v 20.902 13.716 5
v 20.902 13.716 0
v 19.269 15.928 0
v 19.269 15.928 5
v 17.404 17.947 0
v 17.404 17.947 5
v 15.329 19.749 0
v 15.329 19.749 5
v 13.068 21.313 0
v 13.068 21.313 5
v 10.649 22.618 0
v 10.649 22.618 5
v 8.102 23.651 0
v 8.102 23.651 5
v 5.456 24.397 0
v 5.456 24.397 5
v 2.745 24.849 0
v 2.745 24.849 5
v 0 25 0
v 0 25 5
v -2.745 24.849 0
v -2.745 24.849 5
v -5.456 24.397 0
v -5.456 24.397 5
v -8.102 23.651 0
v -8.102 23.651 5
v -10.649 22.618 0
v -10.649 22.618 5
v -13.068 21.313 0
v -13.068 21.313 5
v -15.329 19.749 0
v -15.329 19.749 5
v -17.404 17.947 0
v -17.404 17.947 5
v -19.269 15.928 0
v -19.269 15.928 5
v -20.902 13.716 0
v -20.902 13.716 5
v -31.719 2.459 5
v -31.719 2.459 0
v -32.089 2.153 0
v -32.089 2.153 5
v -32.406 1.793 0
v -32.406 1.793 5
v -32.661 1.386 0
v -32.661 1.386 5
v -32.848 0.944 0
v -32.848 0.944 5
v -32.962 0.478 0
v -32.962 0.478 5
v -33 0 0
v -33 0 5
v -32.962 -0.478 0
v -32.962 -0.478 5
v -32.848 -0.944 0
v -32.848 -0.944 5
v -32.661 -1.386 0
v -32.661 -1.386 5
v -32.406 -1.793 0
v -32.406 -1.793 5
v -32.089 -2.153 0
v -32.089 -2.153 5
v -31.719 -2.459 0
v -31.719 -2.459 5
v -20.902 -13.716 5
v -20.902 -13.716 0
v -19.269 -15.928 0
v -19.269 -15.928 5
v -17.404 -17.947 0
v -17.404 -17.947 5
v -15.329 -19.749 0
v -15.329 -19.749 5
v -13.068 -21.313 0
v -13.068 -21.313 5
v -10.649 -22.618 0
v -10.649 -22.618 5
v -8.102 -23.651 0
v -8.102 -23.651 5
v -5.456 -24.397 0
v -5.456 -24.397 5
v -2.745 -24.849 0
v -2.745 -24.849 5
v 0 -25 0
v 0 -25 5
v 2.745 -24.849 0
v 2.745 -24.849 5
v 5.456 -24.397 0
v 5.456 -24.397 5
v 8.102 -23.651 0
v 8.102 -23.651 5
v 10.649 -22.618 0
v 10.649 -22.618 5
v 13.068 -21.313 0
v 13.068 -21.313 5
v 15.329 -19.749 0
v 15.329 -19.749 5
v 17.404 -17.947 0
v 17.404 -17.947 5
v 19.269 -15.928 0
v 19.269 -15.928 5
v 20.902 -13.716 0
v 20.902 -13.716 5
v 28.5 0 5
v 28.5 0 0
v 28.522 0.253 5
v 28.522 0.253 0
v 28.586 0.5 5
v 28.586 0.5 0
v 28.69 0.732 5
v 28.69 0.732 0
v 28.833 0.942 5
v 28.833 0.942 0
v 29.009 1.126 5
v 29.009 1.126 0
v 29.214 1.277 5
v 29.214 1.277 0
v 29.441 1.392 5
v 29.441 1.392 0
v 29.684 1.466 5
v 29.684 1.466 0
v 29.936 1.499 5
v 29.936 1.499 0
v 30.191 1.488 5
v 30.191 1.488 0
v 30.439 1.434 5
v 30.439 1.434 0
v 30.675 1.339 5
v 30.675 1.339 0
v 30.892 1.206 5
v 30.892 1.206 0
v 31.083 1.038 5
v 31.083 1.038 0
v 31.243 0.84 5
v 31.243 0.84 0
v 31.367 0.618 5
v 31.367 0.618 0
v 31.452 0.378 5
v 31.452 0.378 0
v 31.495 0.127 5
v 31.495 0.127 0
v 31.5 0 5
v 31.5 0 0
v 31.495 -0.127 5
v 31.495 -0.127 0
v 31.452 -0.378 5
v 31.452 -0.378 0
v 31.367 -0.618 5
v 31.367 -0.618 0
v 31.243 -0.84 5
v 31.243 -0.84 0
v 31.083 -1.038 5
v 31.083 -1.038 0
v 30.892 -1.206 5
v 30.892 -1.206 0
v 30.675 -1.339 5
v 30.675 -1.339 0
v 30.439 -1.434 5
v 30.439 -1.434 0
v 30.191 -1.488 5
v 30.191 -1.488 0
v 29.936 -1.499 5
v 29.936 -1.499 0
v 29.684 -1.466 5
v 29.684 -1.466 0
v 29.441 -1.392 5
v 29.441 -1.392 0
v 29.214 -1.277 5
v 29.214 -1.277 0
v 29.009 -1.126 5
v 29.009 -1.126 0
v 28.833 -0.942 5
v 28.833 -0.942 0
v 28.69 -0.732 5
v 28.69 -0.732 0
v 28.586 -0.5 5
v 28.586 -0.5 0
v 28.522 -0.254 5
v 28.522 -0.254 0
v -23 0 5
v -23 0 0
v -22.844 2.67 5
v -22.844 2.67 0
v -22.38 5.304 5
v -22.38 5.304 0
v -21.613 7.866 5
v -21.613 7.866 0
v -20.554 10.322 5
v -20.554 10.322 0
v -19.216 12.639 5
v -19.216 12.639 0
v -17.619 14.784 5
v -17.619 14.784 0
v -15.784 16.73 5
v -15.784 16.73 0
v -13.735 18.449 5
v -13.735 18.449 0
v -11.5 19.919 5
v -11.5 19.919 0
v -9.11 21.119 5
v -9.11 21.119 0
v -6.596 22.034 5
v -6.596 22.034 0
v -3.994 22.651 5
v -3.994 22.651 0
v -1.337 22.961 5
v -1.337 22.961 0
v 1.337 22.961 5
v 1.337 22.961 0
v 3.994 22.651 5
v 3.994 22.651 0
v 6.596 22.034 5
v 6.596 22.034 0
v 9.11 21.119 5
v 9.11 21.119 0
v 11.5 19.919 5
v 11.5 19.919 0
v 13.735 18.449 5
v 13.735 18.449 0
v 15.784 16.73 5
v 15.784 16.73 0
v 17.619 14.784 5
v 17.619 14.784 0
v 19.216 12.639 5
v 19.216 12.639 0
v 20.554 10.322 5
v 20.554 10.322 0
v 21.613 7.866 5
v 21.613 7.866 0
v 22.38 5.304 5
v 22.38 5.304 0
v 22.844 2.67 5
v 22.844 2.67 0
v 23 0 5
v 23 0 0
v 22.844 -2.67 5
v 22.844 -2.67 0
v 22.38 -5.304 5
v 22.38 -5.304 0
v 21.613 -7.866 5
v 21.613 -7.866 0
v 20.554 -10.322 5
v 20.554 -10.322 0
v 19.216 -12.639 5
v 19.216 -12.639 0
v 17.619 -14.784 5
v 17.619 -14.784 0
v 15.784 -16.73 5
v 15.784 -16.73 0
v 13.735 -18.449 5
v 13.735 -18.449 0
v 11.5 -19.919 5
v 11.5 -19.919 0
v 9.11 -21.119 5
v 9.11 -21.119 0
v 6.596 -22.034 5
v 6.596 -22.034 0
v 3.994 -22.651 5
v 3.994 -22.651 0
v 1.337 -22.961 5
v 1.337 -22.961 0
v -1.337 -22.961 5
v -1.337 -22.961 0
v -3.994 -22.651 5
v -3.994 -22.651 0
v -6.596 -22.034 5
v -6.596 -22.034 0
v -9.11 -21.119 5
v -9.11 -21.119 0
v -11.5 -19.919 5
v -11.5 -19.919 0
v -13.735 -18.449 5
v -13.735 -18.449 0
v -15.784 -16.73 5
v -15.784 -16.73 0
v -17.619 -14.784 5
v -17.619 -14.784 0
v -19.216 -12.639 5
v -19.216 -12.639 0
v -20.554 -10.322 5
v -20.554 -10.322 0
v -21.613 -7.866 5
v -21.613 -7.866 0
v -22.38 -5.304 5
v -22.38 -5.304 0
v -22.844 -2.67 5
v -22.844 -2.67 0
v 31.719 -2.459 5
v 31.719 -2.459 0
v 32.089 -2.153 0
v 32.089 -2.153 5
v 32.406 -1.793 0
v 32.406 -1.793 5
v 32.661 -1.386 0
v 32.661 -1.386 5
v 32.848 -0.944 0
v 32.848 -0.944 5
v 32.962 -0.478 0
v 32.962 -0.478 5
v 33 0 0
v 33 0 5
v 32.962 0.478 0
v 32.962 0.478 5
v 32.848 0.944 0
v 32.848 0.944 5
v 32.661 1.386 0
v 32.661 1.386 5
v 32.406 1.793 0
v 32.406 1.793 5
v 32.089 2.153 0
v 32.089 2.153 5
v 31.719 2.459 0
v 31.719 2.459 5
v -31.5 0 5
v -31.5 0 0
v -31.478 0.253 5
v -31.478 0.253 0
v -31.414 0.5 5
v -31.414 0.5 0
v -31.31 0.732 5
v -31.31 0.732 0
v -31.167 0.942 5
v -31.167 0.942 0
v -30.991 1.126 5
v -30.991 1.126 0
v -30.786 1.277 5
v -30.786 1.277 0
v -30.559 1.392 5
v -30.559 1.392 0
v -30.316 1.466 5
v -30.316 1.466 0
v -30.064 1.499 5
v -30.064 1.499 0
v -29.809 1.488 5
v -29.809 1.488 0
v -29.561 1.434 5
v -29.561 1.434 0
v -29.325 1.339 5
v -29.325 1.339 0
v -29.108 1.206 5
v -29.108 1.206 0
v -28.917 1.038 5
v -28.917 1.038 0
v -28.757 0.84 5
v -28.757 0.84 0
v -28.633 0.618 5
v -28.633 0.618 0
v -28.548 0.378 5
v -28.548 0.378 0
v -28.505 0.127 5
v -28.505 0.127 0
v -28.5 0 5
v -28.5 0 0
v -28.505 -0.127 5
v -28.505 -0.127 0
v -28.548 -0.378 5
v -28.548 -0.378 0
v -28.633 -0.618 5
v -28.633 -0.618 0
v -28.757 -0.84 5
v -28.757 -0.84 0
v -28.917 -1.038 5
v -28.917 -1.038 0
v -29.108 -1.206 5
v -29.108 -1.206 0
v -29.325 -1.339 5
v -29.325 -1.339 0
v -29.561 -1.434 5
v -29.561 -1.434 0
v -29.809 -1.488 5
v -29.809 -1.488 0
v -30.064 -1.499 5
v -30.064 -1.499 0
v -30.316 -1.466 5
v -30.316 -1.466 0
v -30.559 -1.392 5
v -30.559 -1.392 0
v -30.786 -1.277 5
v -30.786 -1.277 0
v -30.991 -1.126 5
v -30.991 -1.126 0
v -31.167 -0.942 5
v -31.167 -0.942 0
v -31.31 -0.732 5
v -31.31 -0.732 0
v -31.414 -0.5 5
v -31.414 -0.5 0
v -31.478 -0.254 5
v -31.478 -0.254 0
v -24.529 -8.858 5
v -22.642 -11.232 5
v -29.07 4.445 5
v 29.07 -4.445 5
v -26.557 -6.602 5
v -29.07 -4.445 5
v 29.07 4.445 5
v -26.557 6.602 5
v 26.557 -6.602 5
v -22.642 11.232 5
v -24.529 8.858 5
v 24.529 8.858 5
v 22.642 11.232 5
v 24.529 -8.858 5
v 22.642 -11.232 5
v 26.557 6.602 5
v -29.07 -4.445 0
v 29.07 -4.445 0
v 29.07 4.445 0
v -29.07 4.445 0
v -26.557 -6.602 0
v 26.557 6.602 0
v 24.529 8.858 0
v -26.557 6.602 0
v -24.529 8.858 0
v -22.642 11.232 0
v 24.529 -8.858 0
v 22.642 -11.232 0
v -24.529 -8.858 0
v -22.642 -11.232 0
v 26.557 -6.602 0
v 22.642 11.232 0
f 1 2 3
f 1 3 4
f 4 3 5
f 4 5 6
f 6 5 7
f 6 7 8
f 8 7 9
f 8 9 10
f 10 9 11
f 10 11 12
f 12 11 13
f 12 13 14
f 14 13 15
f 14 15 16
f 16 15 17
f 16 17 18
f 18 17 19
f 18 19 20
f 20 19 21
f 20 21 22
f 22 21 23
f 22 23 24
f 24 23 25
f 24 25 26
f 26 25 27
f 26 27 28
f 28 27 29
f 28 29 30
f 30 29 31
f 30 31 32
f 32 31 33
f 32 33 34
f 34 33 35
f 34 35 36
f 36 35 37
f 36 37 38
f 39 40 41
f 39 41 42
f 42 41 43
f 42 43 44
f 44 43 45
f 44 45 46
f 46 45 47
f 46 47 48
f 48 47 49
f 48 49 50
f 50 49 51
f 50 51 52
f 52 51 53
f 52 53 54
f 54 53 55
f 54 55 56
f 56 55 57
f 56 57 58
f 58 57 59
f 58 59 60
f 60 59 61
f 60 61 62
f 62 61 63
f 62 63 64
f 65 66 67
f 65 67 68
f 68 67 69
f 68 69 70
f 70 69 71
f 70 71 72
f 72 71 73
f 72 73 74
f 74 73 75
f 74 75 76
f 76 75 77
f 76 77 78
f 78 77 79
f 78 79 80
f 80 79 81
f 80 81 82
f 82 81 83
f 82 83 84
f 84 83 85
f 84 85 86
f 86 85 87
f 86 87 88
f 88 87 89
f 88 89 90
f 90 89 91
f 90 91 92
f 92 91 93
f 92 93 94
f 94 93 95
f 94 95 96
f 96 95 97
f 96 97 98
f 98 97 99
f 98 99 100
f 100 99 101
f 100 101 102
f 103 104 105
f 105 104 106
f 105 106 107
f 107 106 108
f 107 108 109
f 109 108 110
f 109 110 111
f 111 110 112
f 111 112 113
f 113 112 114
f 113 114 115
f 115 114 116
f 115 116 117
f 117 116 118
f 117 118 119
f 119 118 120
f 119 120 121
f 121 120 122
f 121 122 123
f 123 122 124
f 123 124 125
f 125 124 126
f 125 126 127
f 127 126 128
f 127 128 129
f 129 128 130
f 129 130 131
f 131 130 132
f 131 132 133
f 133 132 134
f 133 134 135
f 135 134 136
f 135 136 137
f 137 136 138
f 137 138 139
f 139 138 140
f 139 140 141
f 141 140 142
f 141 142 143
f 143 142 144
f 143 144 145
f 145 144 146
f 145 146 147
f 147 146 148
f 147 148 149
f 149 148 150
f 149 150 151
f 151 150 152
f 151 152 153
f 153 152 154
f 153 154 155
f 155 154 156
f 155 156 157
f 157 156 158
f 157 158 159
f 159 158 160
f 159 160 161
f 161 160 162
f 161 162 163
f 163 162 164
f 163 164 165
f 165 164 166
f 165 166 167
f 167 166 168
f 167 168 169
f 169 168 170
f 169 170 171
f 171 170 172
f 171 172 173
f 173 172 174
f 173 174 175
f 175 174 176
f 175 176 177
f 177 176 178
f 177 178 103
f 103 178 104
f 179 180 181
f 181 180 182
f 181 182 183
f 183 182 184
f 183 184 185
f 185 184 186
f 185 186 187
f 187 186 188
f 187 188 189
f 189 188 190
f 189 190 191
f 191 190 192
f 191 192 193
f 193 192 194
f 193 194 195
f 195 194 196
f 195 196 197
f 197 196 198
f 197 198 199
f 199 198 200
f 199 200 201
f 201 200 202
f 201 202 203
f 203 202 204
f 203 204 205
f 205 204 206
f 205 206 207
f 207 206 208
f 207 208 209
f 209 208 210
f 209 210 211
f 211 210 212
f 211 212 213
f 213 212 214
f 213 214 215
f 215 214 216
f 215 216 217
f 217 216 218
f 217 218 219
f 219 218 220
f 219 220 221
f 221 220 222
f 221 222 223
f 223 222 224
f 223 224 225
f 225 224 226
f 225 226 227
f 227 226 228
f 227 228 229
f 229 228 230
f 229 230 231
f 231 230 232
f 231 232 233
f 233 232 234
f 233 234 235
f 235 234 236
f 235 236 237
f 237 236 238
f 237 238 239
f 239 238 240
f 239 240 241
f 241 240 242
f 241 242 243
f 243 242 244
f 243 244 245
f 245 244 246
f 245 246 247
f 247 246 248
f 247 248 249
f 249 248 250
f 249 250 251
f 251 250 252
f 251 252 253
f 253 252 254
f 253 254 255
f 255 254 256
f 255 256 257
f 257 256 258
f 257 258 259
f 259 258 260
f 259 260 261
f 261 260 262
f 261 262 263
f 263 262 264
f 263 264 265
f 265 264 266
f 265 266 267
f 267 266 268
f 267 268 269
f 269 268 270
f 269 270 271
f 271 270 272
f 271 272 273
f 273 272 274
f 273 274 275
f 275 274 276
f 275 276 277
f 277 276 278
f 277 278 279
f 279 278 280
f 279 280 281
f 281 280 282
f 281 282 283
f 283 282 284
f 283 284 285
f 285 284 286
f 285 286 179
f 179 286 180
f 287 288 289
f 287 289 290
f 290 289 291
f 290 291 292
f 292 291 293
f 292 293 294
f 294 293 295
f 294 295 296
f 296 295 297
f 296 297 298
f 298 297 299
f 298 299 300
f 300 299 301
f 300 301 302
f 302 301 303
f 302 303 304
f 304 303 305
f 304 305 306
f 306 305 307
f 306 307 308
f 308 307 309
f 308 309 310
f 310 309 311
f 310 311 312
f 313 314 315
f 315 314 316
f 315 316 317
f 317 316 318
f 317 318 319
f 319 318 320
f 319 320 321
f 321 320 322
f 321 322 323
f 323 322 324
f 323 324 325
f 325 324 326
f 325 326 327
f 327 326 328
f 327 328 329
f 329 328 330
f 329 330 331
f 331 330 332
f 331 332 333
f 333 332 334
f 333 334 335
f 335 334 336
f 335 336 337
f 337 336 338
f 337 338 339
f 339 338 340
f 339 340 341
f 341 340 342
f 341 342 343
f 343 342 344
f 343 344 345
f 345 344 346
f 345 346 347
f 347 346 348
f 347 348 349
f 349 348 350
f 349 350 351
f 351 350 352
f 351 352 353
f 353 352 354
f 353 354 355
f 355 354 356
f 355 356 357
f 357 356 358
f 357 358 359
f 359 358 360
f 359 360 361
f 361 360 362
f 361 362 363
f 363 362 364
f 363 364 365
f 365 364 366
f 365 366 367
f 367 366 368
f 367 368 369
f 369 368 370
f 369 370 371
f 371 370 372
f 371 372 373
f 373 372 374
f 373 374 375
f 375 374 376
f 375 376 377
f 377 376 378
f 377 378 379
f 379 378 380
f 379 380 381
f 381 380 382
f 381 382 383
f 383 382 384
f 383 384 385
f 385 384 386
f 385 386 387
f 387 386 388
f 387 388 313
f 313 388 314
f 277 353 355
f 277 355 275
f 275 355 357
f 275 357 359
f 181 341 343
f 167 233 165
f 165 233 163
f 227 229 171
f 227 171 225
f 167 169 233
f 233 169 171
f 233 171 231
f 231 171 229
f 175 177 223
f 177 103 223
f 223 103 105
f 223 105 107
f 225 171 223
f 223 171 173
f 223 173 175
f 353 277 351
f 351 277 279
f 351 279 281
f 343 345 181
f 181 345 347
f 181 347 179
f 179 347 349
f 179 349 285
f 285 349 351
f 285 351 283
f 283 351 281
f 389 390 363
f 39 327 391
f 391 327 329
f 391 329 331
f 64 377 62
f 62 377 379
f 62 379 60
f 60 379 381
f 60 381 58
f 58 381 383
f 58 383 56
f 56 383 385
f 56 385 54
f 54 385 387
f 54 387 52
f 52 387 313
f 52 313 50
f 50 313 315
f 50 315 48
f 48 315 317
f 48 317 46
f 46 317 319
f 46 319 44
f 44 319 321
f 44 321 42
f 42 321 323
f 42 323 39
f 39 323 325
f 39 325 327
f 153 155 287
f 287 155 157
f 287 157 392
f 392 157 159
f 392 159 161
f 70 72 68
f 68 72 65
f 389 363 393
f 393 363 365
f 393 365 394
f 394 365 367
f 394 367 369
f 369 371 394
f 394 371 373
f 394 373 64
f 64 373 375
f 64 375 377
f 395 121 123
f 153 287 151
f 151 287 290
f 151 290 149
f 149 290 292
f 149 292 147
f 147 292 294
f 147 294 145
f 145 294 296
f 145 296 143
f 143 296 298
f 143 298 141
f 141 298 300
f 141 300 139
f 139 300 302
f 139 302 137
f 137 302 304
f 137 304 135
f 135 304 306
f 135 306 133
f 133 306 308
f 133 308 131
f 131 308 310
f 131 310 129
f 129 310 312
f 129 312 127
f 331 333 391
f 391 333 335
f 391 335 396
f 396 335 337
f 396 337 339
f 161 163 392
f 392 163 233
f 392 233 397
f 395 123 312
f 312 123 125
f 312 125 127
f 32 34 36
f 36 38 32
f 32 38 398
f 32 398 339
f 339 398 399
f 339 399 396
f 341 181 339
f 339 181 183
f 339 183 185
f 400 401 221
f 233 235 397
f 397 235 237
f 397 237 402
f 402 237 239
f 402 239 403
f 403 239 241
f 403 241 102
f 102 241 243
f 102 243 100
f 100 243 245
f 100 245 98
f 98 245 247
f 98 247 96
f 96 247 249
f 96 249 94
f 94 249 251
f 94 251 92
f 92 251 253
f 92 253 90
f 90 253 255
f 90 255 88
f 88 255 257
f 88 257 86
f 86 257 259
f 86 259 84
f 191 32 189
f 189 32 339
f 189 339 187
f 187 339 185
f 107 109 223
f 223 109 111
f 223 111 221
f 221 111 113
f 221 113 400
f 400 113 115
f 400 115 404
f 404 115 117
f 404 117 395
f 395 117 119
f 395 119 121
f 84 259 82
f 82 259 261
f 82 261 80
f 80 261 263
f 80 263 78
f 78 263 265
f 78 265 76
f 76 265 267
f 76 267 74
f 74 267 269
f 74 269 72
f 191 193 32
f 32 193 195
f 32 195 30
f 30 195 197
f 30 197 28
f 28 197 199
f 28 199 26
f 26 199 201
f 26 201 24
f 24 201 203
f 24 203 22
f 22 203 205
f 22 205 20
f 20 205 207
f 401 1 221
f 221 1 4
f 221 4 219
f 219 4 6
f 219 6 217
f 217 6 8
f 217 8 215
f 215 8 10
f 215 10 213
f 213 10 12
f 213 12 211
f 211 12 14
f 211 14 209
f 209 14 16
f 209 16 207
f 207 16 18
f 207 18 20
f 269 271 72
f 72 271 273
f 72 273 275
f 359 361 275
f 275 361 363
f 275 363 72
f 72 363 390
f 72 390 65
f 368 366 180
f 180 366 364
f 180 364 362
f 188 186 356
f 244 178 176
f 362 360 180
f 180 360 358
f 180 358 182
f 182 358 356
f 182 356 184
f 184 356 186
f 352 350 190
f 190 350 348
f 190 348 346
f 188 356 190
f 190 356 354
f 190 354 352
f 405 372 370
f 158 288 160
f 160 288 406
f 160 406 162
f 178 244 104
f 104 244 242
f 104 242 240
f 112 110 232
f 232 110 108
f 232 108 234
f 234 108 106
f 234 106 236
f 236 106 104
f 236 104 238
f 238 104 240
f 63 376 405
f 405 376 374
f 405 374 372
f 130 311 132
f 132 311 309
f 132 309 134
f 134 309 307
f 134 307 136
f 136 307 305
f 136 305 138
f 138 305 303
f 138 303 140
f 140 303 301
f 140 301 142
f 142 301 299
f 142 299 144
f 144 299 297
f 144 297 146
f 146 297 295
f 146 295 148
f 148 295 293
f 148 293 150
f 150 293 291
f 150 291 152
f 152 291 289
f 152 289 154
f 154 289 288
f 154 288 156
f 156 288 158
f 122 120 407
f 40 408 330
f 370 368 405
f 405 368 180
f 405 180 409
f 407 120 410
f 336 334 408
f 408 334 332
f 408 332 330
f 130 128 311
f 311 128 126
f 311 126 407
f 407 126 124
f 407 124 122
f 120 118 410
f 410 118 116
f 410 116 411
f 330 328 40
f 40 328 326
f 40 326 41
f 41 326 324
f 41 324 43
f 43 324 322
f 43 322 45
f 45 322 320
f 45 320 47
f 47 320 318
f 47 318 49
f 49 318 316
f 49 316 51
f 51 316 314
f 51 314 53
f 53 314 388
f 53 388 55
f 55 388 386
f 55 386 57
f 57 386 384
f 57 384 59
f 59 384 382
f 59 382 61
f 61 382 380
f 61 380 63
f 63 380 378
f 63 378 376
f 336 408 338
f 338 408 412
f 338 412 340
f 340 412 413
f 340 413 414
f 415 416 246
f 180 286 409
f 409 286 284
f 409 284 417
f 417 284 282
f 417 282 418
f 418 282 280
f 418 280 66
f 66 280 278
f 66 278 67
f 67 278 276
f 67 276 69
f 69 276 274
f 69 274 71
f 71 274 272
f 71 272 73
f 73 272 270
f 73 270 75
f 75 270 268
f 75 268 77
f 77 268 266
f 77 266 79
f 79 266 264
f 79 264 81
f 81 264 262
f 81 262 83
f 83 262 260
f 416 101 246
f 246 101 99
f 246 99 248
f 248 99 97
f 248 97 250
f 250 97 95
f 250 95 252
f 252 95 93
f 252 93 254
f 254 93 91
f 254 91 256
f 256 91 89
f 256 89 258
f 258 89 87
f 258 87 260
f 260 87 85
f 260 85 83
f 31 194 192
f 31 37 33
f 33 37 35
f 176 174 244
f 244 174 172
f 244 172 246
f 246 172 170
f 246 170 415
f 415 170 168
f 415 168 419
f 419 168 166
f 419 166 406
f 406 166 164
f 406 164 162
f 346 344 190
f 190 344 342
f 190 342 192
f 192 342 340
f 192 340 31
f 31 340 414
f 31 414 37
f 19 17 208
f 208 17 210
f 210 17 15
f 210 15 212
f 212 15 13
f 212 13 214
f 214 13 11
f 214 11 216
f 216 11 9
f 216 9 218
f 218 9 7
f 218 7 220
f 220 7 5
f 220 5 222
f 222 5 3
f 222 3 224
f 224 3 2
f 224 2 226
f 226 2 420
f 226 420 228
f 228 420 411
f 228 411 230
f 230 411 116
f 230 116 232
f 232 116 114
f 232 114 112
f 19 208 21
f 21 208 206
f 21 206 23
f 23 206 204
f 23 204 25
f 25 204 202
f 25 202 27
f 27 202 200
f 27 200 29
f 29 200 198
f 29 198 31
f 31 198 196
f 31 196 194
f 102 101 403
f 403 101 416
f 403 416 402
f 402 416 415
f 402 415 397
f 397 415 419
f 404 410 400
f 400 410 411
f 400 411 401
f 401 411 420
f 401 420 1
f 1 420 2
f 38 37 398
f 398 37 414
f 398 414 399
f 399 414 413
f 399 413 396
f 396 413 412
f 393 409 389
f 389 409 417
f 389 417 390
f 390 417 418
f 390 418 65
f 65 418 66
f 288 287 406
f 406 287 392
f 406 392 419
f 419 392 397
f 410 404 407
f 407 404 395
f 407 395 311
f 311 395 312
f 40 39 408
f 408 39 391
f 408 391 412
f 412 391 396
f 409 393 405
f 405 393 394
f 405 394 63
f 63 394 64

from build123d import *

# Parameters (mm, degrees)
ESQUISSE1_R        = 25
ESQUISSE1_R_2      = 23
ESQUISSE1_R_3      = 3
ESQUISSE1_R_4      = 1.5
BOSS_EXTRU_1_DEPTH = 5
CONG_1_R           = 50
CONG_2_R           = 50


with BuildPart() as part:
    # Esquisse1 → Boss.-Extru.1 (new body)
    # profile 1 of 5: a face of its own
    with BuildSketch(Plane.XY):
        Circle(ESQUISSE1_R)
        Circle(ESQUISSE1_R_2, mode=Mode.SUBTRACT)
    # profile 2 of 5: a face of its own
    with BuildSketch(Plane.XY):
        with BuildLine():
            Line((30, 3), (22.547920633, 10.797743982))
            ThreePointArc((22.547920633, 10.797743982), (24.379274147, 5.536333812), (25, 0))
            ThreePointArc((25, 0), (24.379274147, -5.536333812), (22.547920633, -10.797743982))
            Line((22.547920633, -10.797743982), (30, -3))
            ThreePointArc((30, -3), (27, 0), (30, 3))
        make_face()
    # profile 3 of 5: a face of its own
    with BuildSketch(Plane.XY):
        with Locations((30, 0)):
            Circle(ESQUISSE1_R_3)
        with Locations((30, 0)):
            Circle(ESQUISSE1_R_4, mode=Mode.SUBTRACT)
    # profile 4 of 5: a face of its own
    with BuildSketch(Plane.XY):
        with Locations((-30, 0)):
            Circle(ESQUISSE1_R_3)
        with Locations((-30, 0)):
            Circle(ESQUISSE1_R_4, mode=Mode.SUBTRACT)
    # profile 5 of 5: a face of its own
    with BuildSketch(Plane.XY):
        with BuildLine():
            Line((-22.547920633, 10.797743982), (-30, 3))
            ThreePointArc((-30, 3), (-27.878679656, 2.121320344), (-27, 0))
            ThreePointArc((-27, 0), (-27.878679656, -2.121320344), (-30, -3))
            Line((-30, -3), (-22.547920633, -10.797743982))
            ThreePointArc((-22.547920633, -10.797743982), (-25, 0), (-22.547920633, 10.797743982))
        make_face()
    extrude(amount=BOSS_EXTRU_1_DEPTH)

    # Congé1
    cong_1_edges = [part.edges().sort_by_distance(p)[0] for p in [
        (22.547920633, -10.797743982, 2.5),
        (-22.547920633, -10.797743982, 2.5),
        (-22.547920633, 10.797743982, 2.5),
        (22.547920633, 10.797743982, 2.5),
    ]]
    fillet(cong_1_edges, radius=CONG_1_R)

    # Congé2
    # the kernel refuses this fillet: 50 mm, written as the material it adds along each edge
    with BuildSketch(Plane(origin=(-30, 3, 0), x_dir=(0.690901472787751, 0.722948929662197, 0), z_dir=(0, 0, 1))) as cong_2_piece_1:
        with BuildLine():
            CenterArc((8.249869656, 49.8931531), CONG_2_R, 258.662988377, 7.590639101)
            Line((-1.579108122, 0.868759215), (-1.775687678, -0.111728663))
            ThreePointArc((-1.775687678, -0.111728663), (-1.20479652, -0.320389641), (-0.72294893, -0.690901473))
            Line((-0.72294893, -0.690901473), (0, -1))
            ThreePointArc((0, -1), (2.491435997, -1), (4.917532041, -0.997863062))
            Line((4.917532041, -0.997863062), (4.982871995, 0))
        make_face()
    extrude(amount=5)
    with BuildSketch(Plane(origin=(-30, -3, 0), x_dir=(-0.9538179852697427, 0.30038517103207485, 0), z_dir=(0, 0, 1))) as cong_2_piece_2:
        with BuildLine():
            CenterArc((16.821569578, 47.690899263), CONG_2_R, 244.928622049, 7.590639101)
            Line((-4.365780115, 2.401869543), (-4.789527109, 1.496088949))
            ThreePointArc((-4.789527109, 1.496088949), (-2.664915192, 0.324777383), (-0.482025134, -0.876157389))
            Line((-0.482025134, -0.876157389), (0.300385171, -0.953817985))
            ThreePointArc((0.300385171, -0.953817985), (0.901155513, -0.861453956), (1.501925855, -0.953817985))
            Line((1.501925855, -0.953817985), (1.802311026, 0))
        make_face()
    extrude(amount=5)
    with BuildSketch(Plane(origin=(30, -3, 0), x_dir=(0.9538179852697404, 0.30038517103208245, 0), z_dir=(0, 0, 1))) as cong_2_piece_3:
        with BuildLine():
            CenterArc((16.821569578, -47.690899263), CONG_2_R, 107.48073885, 7.590639101)
            Line((-4.365780115, -2.401869543), (-4.789527109, -1.496088949))
            ThreePointArc((-4.789527109, -1.496088949), (-2.664915192, -0.324777383), (-0.482025134, 0.876157389))
            Line((-0.482025134, 0.876157389), (0.300385171, 0.953817985))
            ThreePointArc((0.300385171, 0.953817985), (0.901155513, 0.861453956), (1.501925855, 0.953817985))
            Line((1.501925855, 0.953817985), (1.802311026, 0))
        make_face()
    extrude(amount=5)
    with BuildSketch(Plane(origin=(30, 3, 0), x_dir=(-0.6909014727877525, 0.7229489296621958, 0), z_dir=(0, 0, 1))) as cong_2_piece_4:
        with BuildLine():
            CenterArc((8.249869656, -49.8931531), CONG_2_R, 93.746372522, 7.590639101)
            Line((-1.579108122, -0.868759215), (-1.775687678, 0.111728663))
            ThreePointArc((-1.775687678, 0.111728663), (-1.20479652, 0.320389641), (-0.72294893, 0.690901473))
            Line((-0.72294893, 0.690901473), (0, 1))
            ThreePointArc((0, 1), (2.491435997, 1), (4.917532041, 0.997863062))
            Line((4.917532041, 0.997863062), (4.982871995, 0))
        make_face()
    extrude(amount=5)


solid = part.part
